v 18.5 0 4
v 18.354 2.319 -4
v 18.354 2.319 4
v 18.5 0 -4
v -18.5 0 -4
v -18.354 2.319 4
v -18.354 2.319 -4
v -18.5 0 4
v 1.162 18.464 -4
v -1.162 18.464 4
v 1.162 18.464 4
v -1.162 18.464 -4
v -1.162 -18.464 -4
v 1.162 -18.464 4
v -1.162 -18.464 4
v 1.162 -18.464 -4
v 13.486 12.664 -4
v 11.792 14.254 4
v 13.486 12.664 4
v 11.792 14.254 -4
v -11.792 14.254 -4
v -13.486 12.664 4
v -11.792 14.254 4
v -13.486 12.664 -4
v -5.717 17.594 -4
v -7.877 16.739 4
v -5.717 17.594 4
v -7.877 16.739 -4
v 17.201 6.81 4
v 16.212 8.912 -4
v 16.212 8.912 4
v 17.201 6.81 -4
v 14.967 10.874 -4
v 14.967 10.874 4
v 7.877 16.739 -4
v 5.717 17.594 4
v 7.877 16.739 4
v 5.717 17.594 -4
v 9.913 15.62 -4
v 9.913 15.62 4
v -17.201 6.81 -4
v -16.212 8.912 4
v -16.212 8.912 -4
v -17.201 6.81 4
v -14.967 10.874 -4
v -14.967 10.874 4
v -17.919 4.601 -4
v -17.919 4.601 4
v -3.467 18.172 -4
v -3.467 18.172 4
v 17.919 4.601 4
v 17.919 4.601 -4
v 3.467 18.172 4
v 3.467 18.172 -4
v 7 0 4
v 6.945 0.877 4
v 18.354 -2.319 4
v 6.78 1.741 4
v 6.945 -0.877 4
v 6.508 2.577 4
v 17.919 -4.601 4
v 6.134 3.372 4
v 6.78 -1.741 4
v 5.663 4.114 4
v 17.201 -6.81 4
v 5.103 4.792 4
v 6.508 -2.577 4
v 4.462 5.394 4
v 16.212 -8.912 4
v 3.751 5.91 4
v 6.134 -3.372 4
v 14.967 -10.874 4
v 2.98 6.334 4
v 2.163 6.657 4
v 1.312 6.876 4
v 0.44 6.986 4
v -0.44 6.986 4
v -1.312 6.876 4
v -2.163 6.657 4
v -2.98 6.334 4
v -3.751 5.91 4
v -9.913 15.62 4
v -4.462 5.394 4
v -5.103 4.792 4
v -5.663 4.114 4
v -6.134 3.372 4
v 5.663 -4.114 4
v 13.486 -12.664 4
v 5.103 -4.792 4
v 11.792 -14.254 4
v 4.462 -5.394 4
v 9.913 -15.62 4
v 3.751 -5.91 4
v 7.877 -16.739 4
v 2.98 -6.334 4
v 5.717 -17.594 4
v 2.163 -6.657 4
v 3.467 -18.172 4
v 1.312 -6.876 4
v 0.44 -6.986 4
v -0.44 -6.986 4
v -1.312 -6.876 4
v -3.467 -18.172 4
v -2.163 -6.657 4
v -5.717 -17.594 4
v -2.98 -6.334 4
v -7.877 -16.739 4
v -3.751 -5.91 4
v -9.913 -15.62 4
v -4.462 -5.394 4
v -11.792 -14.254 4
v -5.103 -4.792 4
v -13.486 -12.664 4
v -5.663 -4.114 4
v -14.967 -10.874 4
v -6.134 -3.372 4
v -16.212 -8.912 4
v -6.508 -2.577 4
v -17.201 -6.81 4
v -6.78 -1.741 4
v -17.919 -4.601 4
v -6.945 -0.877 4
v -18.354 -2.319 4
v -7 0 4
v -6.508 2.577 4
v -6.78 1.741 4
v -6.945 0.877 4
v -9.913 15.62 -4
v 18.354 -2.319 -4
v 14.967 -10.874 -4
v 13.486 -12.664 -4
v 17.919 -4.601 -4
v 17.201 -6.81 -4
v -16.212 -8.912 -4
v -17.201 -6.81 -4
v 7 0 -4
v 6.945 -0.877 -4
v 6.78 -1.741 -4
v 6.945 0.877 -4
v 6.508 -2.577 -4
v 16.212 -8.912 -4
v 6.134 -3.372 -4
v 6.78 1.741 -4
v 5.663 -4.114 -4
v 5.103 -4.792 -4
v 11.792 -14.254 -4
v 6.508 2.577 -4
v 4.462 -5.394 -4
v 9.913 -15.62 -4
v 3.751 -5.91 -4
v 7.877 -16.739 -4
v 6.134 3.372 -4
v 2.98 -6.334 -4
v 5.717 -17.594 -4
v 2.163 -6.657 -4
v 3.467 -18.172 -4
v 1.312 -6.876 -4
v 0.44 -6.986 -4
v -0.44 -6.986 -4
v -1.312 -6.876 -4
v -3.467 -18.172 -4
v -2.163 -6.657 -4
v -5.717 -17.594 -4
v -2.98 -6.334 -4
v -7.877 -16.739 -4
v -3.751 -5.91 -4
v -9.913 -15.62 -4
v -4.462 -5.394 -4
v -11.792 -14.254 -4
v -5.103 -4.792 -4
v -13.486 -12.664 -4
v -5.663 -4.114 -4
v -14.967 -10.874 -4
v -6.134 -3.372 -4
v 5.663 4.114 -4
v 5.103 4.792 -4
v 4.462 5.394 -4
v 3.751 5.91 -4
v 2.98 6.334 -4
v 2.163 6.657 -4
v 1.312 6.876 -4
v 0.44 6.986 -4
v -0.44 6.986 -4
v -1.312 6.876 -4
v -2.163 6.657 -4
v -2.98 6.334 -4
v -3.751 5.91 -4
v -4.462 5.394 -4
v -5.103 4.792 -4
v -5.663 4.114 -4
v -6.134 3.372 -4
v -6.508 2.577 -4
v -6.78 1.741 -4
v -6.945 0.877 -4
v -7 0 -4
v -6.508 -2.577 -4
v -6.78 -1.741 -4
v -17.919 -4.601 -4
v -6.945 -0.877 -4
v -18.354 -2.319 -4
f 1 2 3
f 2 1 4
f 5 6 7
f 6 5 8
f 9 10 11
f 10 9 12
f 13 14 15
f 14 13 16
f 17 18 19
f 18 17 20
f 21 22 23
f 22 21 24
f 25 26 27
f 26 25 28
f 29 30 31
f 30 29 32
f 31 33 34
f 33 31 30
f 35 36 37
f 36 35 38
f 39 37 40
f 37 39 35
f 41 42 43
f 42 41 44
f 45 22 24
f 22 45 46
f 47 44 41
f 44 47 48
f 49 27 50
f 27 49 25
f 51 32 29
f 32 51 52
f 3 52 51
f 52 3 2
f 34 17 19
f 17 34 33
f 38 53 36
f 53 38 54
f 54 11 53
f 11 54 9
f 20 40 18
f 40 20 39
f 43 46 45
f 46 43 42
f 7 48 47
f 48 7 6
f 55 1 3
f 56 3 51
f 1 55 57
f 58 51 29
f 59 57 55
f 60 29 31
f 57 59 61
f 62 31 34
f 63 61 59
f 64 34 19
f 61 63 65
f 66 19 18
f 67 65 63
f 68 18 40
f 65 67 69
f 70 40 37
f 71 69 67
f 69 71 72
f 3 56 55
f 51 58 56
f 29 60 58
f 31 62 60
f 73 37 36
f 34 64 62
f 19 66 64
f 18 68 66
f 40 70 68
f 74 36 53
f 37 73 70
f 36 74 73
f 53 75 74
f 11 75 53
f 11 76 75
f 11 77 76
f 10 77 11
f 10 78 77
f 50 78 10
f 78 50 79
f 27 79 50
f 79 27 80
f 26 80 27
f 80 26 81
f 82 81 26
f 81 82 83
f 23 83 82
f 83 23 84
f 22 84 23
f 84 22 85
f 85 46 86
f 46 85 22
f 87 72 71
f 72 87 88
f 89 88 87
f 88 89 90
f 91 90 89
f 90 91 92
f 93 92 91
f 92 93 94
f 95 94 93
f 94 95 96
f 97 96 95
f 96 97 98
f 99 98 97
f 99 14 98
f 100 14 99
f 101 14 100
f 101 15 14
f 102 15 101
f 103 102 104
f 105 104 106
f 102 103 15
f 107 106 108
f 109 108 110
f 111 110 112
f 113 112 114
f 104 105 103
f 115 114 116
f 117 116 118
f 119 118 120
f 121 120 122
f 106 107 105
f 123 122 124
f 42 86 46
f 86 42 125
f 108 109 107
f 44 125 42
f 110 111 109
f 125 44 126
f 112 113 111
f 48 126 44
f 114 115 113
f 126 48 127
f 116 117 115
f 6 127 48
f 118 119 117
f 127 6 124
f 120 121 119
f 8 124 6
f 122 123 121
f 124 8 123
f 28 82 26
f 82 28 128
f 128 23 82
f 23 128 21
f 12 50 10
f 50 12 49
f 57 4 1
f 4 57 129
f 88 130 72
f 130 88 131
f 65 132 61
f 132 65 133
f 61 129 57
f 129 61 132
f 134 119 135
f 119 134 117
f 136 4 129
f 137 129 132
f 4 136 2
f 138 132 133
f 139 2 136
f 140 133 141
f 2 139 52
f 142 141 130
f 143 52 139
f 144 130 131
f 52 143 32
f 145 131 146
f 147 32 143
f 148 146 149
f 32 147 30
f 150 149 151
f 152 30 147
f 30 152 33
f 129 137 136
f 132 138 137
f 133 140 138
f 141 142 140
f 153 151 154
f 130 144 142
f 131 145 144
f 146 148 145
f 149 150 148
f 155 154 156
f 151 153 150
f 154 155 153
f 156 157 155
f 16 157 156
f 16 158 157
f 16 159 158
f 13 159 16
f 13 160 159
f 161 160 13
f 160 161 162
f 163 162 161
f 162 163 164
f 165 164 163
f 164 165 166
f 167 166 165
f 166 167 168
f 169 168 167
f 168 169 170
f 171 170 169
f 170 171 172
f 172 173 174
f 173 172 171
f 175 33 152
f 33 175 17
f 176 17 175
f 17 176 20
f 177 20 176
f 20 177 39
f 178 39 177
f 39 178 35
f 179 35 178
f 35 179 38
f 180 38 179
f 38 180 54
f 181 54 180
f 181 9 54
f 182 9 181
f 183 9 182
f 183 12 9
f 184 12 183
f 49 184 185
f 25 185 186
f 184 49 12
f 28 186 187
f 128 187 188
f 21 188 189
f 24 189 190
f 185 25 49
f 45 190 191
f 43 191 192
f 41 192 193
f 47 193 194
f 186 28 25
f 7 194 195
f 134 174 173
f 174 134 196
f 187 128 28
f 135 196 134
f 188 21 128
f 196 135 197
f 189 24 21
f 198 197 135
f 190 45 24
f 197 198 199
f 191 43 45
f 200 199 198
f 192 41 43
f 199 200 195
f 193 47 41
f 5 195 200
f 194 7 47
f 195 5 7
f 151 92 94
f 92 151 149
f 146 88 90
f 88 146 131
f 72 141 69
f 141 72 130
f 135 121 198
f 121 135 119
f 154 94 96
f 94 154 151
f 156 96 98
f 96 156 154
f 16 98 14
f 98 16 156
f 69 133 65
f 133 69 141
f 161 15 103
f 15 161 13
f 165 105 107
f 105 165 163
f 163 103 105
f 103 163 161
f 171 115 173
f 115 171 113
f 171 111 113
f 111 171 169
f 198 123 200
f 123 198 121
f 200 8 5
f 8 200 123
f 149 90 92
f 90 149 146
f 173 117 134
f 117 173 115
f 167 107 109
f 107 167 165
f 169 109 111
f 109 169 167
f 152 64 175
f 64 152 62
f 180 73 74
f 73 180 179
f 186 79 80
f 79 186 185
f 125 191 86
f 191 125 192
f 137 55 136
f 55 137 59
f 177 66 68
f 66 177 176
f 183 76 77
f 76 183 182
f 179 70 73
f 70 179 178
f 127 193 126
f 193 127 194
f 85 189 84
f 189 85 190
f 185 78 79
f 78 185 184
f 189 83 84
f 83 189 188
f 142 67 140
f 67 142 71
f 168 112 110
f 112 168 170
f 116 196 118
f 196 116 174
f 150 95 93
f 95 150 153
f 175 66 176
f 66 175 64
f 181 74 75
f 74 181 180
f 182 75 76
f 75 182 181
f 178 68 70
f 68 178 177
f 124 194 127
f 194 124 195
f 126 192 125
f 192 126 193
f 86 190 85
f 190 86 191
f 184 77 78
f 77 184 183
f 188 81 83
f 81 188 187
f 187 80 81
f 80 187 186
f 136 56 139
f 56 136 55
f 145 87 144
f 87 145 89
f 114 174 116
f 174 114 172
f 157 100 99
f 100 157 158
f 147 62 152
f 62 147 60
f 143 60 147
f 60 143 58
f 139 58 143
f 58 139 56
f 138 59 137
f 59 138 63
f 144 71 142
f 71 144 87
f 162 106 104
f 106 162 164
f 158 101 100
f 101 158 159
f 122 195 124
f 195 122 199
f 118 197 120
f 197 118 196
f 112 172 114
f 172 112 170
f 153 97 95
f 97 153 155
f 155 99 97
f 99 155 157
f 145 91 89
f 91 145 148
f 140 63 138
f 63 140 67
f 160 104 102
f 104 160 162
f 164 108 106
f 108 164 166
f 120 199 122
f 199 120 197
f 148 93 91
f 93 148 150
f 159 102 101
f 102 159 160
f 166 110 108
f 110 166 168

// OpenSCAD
$fn = 50;


difference() {
	union() {
		translate(v = [0, 0, -4.0000000000]) {
			cylinder(h = 8, r = 18.5000000000);
		}
	}
	union() {
		translate(v = [0, 0, -100.0000000000]) {
			cylinder(h = 200, r = 7);
		}
	}
}
